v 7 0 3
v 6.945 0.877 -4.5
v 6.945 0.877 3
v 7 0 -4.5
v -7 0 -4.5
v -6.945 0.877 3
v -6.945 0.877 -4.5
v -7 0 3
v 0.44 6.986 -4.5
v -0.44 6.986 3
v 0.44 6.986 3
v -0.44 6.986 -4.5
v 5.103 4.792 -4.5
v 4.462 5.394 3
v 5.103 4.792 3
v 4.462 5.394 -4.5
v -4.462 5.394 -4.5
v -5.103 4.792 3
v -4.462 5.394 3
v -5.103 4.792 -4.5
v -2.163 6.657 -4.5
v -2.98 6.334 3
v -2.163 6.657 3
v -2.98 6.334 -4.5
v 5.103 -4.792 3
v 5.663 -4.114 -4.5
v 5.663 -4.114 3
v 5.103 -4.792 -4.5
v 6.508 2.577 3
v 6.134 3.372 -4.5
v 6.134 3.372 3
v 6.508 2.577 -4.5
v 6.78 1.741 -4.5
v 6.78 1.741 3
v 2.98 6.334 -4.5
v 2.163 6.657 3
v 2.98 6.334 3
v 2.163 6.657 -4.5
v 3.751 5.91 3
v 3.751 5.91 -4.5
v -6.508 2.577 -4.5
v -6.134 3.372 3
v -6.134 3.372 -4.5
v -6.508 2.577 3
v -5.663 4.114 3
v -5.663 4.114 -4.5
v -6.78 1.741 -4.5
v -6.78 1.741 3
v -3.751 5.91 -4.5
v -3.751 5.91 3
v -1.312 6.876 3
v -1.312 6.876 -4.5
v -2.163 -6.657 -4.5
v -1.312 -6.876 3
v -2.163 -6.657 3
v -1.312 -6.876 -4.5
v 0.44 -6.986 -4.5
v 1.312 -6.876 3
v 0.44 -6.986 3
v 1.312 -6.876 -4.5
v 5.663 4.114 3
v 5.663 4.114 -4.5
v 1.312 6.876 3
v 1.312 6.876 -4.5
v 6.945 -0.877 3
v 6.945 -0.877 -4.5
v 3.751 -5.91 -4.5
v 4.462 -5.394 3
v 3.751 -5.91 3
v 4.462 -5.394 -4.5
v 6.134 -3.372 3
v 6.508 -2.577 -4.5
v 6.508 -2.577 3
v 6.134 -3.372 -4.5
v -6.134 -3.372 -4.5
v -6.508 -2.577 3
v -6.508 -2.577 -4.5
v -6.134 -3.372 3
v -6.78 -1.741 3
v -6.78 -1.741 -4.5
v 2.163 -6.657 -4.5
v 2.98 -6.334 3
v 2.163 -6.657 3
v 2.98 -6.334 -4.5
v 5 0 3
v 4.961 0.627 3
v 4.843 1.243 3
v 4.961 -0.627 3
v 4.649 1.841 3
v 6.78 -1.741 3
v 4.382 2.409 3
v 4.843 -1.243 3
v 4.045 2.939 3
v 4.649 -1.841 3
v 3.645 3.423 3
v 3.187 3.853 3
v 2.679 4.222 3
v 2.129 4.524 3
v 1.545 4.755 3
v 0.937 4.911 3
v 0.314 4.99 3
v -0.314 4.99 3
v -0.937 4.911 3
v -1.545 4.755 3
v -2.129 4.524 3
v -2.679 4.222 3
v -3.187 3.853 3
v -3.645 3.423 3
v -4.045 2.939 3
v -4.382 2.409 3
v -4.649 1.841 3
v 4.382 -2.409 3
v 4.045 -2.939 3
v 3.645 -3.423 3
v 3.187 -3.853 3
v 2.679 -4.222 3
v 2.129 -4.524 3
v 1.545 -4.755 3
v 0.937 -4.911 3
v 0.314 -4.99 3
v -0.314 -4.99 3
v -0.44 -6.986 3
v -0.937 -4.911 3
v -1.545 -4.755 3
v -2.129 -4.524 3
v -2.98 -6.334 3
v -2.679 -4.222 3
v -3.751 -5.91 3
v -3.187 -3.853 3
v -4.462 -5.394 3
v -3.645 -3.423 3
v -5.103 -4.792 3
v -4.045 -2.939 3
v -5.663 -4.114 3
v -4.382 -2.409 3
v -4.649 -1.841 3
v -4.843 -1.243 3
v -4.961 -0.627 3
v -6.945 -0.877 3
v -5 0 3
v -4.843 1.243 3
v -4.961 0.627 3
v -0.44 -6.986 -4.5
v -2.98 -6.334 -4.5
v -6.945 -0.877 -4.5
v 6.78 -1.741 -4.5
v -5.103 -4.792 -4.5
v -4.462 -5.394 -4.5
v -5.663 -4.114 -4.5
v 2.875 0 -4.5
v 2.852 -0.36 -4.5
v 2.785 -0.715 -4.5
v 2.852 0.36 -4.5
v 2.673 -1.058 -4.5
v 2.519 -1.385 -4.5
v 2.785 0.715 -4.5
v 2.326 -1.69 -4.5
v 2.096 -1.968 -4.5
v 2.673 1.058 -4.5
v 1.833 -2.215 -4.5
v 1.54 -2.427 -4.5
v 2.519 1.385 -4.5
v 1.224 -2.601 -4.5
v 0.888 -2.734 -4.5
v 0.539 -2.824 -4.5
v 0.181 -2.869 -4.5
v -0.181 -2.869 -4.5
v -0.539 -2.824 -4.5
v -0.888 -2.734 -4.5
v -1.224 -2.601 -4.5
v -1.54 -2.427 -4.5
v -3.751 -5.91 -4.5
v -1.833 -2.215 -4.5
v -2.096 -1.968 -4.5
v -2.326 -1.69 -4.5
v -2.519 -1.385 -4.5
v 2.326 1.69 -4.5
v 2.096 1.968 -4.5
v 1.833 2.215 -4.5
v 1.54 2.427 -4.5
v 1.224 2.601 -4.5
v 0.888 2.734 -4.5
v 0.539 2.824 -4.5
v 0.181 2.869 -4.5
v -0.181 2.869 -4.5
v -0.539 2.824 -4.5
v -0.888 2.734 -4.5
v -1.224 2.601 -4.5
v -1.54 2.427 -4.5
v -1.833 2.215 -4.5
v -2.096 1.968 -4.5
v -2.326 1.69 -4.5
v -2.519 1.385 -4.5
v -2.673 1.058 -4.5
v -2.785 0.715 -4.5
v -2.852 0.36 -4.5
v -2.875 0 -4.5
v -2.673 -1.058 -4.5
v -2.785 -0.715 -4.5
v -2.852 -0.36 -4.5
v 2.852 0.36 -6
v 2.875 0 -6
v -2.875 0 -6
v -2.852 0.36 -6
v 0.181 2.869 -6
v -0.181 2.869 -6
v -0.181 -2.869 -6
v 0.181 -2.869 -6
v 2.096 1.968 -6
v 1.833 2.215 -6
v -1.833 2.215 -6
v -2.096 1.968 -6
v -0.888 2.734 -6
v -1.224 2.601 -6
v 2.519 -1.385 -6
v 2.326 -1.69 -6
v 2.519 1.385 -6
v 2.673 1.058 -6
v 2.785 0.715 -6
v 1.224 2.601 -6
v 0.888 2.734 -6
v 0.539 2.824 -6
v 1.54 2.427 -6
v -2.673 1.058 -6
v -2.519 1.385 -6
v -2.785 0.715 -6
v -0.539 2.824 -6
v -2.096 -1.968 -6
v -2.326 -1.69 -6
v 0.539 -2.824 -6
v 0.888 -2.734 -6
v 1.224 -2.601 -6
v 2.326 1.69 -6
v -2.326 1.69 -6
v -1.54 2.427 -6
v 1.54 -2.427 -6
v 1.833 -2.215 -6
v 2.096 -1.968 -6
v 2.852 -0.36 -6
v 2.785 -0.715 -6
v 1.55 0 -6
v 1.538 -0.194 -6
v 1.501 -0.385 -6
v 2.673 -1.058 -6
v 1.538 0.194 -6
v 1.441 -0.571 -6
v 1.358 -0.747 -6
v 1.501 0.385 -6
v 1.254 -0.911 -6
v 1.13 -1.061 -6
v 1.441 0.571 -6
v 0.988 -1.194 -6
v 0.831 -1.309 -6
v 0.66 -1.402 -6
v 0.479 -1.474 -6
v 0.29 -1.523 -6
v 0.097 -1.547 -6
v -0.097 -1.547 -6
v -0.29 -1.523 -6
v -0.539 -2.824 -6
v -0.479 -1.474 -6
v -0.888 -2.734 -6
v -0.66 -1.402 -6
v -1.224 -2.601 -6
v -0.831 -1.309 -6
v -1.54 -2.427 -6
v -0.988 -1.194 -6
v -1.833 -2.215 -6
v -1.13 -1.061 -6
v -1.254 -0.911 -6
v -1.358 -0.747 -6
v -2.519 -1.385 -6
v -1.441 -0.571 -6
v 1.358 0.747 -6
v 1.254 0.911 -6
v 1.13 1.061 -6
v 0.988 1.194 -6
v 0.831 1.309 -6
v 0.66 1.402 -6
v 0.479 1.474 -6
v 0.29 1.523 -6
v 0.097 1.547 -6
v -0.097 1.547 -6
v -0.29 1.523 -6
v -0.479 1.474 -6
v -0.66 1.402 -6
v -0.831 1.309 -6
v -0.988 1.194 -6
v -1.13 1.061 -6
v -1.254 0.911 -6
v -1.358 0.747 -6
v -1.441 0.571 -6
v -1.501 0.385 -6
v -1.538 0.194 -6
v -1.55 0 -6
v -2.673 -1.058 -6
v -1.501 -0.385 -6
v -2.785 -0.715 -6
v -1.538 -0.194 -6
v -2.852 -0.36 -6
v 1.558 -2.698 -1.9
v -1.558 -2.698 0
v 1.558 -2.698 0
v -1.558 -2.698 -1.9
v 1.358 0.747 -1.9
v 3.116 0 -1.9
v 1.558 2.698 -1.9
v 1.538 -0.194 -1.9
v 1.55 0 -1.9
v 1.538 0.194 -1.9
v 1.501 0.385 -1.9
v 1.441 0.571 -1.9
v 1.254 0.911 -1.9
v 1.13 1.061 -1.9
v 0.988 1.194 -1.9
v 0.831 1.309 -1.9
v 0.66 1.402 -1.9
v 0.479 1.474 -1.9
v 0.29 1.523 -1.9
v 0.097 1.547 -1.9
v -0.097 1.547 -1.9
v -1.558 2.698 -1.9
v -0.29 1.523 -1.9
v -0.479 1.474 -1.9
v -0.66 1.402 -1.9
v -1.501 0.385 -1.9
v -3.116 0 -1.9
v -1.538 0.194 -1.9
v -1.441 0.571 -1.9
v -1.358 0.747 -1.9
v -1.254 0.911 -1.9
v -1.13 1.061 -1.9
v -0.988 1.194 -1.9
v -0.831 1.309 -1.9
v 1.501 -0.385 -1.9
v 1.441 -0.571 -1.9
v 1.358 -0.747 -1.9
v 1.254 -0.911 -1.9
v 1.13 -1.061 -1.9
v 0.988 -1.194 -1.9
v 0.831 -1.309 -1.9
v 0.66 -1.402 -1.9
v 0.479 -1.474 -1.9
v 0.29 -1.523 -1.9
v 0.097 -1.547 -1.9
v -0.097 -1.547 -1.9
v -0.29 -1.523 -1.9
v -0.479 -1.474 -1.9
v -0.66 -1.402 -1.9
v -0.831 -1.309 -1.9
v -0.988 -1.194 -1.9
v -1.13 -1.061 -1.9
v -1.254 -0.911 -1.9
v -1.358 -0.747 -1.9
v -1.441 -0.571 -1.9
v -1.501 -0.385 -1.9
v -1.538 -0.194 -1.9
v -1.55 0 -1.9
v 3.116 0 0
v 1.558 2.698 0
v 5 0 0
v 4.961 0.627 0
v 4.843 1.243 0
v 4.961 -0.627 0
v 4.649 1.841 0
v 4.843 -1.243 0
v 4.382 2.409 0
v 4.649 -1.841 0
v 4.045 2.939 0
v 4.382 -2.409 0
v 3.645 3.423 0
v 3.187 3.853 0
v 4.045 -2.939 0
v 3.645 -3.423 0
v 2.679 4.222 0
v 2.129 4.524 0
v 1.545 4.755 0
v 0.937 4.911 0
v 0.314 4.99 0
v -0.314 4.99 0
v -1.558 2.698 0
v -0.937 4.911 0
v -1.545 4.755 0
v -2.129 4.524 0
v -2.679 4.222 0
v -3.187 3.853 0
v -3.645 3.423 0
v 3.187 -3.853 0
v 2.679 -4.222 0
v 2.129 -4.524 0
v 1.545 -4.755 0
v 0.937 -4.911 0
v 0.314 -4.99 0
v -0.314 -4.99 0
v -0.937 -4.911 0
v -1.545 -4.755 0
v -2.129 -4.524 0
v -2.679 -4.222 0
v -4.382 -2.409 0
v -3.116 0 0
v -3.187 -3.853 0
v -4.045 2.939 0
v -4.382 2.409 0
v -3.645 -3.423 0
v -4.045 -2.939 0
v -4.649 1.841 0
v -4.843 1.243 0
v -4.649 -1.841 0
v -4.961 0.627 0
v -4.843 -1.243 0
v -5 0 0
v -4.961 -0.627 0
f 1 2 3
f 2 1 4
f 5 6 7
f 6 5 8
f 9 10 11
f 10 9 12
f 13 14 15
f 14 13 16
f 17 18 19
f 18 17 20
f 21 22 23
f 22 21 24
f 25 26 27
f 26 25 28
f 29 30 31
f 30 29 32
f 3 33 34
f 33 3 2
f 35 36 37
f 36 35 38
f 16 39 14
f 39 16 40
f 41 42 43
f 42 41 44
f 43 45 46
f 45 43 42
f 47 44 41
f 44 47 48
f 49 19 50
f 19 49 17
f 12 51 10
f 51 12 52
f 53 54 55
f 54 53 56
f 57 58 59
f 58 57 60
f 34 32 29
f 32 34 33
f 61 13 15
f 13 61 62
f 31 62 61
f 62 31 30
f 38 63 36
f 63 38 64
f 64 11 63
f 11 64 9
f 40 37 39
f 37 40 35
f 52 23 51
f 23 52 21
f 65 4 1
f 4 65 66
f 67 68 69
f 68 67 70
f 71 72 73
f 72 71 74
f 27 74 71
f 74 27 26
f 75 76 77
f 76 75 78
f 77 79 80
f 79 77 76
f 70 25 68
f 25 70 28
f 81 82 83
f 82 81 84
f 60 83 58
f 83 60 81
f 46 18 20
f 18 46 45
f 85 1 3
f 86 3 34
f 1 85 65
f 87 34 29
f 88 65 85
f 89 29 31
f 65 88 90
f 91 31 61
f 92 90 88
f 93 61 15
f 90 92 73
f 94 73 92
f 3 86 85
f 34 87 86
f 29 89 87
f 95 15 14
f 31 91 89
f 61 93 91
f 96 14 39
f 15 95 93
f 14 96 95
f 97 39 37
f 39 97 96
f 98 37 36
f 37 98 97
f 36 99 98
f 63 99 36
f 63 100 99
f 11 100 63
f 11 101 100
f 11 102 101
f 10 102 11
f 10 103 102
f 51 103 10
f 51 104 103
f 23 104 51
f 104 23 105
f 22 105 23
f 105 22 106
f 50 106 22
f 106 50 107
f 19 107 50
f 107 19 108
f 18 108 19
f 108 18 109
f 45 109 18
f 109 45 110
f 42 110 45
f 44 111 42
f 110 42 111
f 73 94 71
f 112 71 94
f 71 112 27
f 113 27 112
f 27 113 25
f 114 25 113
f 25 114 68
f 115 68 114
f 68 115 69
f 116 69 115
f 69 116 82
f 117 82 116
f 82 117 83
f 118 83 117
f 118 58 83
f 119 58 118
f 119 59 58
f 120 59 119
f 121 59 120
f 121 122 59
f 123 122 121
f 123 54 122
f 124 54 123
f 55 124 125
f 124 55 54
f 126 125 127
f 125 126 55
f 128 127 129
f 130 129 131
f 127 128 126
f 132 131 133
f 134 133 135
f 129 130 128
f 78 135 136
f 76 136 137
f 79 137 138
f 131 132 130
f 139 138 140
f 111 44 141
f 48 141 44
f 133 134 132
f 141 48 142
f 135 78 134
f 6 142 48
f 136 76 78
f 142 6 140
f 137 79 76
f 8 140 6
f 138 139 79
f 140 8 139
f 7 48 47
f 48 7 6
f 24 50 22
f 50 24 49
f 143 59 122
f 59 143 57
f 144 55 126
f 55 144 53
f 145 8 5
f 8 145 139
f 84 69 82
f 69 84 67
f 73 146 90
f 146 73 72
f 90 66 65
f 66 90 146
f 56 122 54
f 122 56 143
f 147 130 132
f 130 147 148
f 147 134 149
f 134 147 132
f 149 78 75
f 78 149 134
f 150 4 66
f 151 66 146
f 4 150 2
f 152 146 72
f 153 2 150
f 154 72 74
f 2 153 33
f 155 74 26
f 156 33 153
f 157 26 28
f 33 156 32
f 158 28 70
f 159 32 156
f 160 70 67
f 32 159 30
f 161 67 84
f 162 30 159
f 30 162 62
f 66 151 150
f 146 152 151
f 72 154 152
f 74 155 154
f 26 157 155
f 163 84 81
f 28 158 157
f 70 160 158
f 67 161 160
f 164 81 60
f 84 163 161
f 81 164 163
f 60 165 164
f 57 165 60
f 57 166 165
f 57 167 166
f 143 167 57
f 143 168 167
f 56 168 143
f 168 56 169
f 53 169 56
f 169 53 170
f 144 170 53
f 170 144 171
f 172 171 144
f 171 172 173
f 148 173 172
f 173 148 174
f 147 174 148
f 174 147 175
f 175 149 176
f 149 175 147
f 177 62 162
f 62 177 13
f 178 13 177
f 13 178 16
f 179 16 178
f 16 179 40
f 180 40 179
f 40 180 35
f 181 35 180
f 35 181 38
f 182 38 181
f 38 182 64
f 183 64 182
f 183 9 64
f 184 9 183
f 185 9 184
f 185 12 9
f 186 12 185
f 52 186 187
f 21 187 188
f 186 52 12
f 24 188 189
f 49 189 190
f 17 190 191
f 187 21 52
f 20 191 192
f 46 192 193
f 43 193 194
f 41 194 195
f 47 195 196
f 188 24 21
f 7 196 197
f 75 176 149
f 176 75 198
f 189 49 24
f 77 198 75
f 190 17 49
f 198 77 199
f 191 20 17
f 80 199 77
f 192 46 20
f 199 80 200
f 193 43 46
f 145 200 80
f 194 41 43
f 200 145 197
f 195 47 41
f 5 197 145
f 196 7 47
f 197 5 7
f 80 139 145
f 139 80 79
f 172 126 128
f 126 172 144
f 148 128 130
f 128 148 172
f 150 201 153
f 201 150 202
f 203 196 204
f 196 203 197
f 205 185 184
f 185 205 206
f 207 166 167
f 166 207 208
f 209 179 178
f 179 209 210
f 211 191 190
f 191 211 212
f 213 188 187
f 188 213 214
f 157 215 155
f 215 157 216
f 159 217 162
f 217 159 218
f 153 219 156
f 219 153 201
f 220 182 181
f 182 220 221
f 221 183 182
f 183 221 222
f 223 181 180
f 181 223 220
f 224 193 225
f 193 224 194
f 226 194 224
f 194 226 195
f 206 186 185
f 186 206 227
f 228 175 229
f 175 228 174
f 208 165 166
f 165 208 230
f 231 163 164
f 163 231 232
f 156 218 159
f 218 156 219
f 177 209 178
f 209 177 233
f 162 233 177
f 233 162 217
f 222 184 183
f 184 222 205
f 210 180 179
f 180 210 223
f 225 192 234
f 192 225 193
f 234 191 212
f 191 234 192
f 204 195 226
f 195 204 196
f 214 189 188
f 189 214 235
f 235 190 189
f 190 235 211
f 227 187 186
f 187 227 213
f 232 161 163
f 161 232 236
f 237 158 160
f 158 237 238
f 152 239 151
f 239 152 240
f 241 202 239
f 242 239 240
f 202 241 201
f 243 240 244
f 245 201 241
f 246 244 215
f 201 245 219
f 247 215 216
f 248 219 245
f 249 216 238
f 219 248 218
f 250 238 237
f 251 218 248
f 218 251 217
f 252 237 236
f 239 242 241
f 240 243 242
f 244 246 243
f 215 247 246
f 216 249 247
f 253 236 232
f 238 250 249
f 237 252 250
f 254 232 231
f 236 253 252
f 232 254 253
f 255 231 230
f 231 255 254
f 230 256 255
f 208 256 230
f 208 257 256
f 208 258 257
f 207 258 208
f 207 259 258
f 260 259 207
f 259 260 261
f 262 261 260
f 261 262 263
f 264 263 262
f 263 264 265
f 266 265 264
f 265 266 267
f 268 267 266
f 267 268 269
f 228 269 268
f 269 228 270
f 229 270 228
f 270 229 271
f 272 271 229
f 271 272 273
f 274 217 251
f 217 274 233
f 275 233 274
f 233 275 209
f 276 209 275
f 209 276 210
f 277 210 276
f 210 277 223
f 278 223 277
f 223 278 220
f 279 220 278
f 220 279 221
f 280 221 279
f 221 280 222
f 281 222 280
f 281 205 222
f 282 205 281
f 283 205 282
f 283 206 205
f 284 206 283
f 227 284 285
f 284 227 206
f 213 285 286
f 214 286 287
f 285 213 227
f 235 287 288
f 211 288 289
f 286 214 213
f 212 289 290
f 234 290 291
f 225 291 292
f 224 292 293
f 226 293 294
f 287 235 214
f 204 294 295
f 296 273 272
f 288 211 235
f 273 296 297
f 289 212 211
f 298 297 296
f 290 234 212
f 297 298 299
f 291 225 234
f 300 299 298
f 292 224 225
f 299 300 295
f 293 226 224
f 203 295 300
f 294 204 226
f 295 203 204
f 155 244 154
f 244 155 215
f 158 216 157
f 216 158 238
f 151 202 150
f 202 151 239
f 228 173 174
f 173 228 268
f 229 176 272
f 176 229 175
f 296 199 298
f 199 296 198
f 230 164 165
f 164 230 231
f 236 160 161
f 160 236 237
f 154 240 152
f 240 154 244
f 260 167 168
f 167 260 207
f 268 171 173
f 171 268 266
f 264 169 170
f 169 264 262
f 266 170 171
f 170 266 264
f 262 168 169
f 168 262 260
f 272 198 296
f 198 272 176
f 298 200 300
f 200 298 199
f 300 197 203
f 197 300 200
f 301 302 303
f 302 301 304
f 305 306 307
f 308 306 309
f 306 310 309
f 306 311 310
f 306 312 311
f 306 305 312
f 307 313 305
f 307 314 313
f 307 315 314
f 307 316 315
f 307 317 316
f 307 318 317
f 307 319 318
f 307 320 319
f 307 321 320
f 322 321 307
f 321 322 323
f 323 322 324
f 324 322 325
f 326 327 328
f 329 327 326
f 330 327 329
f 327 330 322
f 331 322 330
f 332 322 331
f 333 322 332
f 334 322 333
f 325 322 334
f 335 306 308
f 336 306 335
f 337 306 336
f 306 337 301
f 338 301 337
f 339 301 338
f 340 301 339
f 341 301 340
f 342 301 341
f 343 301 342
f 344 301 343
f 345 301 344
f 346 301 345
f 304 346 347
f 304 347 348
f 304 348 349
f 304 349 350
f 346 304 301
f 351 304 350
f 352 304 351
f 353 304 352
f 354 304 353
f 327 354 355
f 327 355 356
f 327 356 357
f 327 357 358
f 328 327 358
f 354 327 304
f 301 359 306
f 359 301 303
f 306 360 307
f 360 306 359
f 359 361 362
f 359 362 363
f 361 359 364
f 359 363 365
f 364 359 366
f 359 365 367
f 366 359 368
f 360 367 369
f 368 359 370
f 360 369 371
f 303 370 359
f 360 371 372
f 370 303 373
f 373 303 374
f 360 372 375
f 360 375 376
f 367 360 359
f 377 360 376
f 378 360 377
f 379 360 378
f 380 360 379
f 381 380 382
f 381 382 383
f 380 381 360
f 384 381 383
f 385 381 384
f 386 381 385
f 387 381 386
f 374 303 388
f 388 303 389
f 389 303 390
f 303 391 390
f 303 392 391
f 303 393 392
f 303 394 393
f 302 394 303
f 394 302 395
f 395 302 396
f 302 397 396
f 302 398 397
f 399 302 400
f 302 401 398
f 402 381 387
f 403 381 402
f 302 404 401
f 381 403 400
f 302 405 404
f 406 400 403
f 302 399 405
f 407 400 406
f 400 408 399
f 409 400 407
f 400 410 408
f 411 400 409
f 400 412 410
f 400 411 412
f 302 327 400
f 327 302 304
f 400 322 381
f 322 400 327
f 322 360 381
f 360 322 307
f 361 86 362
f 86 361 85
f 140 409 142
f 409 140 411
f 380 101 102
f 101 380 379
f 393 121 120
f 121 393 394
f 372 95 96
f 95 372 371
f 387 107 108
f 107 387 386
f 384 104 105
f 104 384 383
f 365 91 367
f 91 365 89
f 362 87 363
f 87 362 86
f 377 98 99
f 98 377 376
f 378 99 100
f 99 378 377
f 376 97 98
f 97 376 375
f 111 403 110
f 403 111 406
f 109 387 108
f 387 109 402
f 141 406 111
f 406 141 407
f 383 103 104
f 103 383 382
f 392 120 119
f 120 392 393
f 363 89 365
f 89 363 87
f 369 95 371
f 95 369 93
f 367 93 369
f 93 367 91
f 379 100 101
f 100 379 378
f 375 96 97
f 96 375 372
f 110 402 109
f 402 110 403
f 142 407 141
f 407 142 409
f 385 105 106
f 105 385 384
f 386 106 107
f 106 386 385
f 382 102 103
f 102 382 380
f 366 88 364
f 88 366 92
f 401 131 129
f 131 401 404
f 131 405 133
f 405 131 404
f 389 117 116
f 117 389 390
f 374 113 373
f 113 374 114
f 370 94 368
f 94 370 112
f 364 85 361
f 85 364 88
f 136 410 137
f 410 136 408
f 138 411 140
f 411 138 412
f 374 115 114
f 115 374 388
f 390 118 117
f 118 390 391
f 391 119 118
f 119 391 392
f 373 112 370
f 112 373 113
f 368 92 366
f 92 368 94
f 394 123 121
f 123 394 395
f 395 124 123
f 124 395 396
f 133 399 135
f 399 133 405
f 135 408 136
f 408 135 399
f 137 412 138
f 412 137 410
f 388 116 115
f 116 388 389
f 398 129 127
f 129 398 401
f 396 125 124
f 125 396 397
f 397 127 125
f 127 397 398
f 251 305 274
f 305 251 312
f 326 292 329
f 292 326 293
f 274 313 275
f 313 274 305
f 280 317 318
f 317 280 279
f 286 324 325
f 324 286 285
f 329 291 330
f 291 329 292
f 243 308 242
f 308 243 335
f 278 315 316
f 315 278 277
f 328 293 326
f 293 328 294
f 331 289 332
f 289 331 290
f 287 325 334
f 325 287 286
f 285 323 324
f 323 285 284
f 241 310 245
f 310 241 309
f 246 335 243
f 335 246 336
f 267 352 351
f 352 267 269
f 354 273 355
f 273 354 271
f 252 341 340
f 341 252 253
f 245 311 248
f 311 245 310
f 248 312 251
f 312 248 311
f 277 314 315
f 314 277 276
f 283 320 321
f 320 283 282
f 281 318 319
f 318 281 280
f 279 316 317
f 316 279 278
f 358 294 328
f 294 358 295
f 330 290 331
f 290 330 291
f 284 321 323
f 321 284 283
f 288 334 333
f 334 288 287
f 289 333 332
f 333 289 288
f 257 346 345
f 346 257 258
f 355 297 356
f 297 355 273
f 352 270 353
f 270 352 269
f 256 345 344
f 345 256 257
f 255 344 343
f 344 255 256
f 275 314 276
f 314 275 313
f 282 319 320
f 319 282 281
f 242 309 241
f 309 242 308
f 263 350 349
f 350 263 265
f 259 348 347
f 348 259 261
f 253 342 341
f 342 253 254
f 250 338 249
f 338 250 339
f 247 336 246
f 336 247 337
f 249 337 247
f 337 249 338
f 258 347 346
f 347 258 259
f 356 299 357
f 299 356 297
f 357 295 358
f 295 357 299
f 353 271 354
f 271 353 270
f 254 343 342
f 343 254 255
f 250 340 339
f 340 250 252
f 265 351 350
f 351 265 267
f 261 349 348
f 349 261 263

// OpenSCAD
$fn = 50;


difference() {
	union() {
		translate(v = [0, 0, -4.5000000000]) {
			cylinder(h = 7.5000000000, r = 7.0000000000);
		}
		#translate(v = [0, 0, -6.0000000000]) {
			cylinder(h = 6, r = 2.8750000000);
		}
	}
	union() {
		translate(v = [0, 0, 0]) {
			rotate(a = [0, 0, 0]) {
				difference() {
					union() {
						translate(v = [0, 0, -1.9000000000]) {
							linear_extrude(height = 1.9000000000) {
								polygon(points = [[3.1158000000, 0.0000000000], [1.5579000000, 2.6983619531], [-1.5579000000, 2.6983619531], [-3.1158000000, 0.0000000000], [-1.5579000000, -2.6983619531], [1.5579000000, -2.6983619531]]);
							}
						}
					}
					union();
				}
			}
		}
		#cylinder(h = 3, r = 5.0000000000);
		#translate(v = [0, 0, -100.0000000000]) {
			cylinder(h = 200, r = 1.5500000000);
		}
	}
}
